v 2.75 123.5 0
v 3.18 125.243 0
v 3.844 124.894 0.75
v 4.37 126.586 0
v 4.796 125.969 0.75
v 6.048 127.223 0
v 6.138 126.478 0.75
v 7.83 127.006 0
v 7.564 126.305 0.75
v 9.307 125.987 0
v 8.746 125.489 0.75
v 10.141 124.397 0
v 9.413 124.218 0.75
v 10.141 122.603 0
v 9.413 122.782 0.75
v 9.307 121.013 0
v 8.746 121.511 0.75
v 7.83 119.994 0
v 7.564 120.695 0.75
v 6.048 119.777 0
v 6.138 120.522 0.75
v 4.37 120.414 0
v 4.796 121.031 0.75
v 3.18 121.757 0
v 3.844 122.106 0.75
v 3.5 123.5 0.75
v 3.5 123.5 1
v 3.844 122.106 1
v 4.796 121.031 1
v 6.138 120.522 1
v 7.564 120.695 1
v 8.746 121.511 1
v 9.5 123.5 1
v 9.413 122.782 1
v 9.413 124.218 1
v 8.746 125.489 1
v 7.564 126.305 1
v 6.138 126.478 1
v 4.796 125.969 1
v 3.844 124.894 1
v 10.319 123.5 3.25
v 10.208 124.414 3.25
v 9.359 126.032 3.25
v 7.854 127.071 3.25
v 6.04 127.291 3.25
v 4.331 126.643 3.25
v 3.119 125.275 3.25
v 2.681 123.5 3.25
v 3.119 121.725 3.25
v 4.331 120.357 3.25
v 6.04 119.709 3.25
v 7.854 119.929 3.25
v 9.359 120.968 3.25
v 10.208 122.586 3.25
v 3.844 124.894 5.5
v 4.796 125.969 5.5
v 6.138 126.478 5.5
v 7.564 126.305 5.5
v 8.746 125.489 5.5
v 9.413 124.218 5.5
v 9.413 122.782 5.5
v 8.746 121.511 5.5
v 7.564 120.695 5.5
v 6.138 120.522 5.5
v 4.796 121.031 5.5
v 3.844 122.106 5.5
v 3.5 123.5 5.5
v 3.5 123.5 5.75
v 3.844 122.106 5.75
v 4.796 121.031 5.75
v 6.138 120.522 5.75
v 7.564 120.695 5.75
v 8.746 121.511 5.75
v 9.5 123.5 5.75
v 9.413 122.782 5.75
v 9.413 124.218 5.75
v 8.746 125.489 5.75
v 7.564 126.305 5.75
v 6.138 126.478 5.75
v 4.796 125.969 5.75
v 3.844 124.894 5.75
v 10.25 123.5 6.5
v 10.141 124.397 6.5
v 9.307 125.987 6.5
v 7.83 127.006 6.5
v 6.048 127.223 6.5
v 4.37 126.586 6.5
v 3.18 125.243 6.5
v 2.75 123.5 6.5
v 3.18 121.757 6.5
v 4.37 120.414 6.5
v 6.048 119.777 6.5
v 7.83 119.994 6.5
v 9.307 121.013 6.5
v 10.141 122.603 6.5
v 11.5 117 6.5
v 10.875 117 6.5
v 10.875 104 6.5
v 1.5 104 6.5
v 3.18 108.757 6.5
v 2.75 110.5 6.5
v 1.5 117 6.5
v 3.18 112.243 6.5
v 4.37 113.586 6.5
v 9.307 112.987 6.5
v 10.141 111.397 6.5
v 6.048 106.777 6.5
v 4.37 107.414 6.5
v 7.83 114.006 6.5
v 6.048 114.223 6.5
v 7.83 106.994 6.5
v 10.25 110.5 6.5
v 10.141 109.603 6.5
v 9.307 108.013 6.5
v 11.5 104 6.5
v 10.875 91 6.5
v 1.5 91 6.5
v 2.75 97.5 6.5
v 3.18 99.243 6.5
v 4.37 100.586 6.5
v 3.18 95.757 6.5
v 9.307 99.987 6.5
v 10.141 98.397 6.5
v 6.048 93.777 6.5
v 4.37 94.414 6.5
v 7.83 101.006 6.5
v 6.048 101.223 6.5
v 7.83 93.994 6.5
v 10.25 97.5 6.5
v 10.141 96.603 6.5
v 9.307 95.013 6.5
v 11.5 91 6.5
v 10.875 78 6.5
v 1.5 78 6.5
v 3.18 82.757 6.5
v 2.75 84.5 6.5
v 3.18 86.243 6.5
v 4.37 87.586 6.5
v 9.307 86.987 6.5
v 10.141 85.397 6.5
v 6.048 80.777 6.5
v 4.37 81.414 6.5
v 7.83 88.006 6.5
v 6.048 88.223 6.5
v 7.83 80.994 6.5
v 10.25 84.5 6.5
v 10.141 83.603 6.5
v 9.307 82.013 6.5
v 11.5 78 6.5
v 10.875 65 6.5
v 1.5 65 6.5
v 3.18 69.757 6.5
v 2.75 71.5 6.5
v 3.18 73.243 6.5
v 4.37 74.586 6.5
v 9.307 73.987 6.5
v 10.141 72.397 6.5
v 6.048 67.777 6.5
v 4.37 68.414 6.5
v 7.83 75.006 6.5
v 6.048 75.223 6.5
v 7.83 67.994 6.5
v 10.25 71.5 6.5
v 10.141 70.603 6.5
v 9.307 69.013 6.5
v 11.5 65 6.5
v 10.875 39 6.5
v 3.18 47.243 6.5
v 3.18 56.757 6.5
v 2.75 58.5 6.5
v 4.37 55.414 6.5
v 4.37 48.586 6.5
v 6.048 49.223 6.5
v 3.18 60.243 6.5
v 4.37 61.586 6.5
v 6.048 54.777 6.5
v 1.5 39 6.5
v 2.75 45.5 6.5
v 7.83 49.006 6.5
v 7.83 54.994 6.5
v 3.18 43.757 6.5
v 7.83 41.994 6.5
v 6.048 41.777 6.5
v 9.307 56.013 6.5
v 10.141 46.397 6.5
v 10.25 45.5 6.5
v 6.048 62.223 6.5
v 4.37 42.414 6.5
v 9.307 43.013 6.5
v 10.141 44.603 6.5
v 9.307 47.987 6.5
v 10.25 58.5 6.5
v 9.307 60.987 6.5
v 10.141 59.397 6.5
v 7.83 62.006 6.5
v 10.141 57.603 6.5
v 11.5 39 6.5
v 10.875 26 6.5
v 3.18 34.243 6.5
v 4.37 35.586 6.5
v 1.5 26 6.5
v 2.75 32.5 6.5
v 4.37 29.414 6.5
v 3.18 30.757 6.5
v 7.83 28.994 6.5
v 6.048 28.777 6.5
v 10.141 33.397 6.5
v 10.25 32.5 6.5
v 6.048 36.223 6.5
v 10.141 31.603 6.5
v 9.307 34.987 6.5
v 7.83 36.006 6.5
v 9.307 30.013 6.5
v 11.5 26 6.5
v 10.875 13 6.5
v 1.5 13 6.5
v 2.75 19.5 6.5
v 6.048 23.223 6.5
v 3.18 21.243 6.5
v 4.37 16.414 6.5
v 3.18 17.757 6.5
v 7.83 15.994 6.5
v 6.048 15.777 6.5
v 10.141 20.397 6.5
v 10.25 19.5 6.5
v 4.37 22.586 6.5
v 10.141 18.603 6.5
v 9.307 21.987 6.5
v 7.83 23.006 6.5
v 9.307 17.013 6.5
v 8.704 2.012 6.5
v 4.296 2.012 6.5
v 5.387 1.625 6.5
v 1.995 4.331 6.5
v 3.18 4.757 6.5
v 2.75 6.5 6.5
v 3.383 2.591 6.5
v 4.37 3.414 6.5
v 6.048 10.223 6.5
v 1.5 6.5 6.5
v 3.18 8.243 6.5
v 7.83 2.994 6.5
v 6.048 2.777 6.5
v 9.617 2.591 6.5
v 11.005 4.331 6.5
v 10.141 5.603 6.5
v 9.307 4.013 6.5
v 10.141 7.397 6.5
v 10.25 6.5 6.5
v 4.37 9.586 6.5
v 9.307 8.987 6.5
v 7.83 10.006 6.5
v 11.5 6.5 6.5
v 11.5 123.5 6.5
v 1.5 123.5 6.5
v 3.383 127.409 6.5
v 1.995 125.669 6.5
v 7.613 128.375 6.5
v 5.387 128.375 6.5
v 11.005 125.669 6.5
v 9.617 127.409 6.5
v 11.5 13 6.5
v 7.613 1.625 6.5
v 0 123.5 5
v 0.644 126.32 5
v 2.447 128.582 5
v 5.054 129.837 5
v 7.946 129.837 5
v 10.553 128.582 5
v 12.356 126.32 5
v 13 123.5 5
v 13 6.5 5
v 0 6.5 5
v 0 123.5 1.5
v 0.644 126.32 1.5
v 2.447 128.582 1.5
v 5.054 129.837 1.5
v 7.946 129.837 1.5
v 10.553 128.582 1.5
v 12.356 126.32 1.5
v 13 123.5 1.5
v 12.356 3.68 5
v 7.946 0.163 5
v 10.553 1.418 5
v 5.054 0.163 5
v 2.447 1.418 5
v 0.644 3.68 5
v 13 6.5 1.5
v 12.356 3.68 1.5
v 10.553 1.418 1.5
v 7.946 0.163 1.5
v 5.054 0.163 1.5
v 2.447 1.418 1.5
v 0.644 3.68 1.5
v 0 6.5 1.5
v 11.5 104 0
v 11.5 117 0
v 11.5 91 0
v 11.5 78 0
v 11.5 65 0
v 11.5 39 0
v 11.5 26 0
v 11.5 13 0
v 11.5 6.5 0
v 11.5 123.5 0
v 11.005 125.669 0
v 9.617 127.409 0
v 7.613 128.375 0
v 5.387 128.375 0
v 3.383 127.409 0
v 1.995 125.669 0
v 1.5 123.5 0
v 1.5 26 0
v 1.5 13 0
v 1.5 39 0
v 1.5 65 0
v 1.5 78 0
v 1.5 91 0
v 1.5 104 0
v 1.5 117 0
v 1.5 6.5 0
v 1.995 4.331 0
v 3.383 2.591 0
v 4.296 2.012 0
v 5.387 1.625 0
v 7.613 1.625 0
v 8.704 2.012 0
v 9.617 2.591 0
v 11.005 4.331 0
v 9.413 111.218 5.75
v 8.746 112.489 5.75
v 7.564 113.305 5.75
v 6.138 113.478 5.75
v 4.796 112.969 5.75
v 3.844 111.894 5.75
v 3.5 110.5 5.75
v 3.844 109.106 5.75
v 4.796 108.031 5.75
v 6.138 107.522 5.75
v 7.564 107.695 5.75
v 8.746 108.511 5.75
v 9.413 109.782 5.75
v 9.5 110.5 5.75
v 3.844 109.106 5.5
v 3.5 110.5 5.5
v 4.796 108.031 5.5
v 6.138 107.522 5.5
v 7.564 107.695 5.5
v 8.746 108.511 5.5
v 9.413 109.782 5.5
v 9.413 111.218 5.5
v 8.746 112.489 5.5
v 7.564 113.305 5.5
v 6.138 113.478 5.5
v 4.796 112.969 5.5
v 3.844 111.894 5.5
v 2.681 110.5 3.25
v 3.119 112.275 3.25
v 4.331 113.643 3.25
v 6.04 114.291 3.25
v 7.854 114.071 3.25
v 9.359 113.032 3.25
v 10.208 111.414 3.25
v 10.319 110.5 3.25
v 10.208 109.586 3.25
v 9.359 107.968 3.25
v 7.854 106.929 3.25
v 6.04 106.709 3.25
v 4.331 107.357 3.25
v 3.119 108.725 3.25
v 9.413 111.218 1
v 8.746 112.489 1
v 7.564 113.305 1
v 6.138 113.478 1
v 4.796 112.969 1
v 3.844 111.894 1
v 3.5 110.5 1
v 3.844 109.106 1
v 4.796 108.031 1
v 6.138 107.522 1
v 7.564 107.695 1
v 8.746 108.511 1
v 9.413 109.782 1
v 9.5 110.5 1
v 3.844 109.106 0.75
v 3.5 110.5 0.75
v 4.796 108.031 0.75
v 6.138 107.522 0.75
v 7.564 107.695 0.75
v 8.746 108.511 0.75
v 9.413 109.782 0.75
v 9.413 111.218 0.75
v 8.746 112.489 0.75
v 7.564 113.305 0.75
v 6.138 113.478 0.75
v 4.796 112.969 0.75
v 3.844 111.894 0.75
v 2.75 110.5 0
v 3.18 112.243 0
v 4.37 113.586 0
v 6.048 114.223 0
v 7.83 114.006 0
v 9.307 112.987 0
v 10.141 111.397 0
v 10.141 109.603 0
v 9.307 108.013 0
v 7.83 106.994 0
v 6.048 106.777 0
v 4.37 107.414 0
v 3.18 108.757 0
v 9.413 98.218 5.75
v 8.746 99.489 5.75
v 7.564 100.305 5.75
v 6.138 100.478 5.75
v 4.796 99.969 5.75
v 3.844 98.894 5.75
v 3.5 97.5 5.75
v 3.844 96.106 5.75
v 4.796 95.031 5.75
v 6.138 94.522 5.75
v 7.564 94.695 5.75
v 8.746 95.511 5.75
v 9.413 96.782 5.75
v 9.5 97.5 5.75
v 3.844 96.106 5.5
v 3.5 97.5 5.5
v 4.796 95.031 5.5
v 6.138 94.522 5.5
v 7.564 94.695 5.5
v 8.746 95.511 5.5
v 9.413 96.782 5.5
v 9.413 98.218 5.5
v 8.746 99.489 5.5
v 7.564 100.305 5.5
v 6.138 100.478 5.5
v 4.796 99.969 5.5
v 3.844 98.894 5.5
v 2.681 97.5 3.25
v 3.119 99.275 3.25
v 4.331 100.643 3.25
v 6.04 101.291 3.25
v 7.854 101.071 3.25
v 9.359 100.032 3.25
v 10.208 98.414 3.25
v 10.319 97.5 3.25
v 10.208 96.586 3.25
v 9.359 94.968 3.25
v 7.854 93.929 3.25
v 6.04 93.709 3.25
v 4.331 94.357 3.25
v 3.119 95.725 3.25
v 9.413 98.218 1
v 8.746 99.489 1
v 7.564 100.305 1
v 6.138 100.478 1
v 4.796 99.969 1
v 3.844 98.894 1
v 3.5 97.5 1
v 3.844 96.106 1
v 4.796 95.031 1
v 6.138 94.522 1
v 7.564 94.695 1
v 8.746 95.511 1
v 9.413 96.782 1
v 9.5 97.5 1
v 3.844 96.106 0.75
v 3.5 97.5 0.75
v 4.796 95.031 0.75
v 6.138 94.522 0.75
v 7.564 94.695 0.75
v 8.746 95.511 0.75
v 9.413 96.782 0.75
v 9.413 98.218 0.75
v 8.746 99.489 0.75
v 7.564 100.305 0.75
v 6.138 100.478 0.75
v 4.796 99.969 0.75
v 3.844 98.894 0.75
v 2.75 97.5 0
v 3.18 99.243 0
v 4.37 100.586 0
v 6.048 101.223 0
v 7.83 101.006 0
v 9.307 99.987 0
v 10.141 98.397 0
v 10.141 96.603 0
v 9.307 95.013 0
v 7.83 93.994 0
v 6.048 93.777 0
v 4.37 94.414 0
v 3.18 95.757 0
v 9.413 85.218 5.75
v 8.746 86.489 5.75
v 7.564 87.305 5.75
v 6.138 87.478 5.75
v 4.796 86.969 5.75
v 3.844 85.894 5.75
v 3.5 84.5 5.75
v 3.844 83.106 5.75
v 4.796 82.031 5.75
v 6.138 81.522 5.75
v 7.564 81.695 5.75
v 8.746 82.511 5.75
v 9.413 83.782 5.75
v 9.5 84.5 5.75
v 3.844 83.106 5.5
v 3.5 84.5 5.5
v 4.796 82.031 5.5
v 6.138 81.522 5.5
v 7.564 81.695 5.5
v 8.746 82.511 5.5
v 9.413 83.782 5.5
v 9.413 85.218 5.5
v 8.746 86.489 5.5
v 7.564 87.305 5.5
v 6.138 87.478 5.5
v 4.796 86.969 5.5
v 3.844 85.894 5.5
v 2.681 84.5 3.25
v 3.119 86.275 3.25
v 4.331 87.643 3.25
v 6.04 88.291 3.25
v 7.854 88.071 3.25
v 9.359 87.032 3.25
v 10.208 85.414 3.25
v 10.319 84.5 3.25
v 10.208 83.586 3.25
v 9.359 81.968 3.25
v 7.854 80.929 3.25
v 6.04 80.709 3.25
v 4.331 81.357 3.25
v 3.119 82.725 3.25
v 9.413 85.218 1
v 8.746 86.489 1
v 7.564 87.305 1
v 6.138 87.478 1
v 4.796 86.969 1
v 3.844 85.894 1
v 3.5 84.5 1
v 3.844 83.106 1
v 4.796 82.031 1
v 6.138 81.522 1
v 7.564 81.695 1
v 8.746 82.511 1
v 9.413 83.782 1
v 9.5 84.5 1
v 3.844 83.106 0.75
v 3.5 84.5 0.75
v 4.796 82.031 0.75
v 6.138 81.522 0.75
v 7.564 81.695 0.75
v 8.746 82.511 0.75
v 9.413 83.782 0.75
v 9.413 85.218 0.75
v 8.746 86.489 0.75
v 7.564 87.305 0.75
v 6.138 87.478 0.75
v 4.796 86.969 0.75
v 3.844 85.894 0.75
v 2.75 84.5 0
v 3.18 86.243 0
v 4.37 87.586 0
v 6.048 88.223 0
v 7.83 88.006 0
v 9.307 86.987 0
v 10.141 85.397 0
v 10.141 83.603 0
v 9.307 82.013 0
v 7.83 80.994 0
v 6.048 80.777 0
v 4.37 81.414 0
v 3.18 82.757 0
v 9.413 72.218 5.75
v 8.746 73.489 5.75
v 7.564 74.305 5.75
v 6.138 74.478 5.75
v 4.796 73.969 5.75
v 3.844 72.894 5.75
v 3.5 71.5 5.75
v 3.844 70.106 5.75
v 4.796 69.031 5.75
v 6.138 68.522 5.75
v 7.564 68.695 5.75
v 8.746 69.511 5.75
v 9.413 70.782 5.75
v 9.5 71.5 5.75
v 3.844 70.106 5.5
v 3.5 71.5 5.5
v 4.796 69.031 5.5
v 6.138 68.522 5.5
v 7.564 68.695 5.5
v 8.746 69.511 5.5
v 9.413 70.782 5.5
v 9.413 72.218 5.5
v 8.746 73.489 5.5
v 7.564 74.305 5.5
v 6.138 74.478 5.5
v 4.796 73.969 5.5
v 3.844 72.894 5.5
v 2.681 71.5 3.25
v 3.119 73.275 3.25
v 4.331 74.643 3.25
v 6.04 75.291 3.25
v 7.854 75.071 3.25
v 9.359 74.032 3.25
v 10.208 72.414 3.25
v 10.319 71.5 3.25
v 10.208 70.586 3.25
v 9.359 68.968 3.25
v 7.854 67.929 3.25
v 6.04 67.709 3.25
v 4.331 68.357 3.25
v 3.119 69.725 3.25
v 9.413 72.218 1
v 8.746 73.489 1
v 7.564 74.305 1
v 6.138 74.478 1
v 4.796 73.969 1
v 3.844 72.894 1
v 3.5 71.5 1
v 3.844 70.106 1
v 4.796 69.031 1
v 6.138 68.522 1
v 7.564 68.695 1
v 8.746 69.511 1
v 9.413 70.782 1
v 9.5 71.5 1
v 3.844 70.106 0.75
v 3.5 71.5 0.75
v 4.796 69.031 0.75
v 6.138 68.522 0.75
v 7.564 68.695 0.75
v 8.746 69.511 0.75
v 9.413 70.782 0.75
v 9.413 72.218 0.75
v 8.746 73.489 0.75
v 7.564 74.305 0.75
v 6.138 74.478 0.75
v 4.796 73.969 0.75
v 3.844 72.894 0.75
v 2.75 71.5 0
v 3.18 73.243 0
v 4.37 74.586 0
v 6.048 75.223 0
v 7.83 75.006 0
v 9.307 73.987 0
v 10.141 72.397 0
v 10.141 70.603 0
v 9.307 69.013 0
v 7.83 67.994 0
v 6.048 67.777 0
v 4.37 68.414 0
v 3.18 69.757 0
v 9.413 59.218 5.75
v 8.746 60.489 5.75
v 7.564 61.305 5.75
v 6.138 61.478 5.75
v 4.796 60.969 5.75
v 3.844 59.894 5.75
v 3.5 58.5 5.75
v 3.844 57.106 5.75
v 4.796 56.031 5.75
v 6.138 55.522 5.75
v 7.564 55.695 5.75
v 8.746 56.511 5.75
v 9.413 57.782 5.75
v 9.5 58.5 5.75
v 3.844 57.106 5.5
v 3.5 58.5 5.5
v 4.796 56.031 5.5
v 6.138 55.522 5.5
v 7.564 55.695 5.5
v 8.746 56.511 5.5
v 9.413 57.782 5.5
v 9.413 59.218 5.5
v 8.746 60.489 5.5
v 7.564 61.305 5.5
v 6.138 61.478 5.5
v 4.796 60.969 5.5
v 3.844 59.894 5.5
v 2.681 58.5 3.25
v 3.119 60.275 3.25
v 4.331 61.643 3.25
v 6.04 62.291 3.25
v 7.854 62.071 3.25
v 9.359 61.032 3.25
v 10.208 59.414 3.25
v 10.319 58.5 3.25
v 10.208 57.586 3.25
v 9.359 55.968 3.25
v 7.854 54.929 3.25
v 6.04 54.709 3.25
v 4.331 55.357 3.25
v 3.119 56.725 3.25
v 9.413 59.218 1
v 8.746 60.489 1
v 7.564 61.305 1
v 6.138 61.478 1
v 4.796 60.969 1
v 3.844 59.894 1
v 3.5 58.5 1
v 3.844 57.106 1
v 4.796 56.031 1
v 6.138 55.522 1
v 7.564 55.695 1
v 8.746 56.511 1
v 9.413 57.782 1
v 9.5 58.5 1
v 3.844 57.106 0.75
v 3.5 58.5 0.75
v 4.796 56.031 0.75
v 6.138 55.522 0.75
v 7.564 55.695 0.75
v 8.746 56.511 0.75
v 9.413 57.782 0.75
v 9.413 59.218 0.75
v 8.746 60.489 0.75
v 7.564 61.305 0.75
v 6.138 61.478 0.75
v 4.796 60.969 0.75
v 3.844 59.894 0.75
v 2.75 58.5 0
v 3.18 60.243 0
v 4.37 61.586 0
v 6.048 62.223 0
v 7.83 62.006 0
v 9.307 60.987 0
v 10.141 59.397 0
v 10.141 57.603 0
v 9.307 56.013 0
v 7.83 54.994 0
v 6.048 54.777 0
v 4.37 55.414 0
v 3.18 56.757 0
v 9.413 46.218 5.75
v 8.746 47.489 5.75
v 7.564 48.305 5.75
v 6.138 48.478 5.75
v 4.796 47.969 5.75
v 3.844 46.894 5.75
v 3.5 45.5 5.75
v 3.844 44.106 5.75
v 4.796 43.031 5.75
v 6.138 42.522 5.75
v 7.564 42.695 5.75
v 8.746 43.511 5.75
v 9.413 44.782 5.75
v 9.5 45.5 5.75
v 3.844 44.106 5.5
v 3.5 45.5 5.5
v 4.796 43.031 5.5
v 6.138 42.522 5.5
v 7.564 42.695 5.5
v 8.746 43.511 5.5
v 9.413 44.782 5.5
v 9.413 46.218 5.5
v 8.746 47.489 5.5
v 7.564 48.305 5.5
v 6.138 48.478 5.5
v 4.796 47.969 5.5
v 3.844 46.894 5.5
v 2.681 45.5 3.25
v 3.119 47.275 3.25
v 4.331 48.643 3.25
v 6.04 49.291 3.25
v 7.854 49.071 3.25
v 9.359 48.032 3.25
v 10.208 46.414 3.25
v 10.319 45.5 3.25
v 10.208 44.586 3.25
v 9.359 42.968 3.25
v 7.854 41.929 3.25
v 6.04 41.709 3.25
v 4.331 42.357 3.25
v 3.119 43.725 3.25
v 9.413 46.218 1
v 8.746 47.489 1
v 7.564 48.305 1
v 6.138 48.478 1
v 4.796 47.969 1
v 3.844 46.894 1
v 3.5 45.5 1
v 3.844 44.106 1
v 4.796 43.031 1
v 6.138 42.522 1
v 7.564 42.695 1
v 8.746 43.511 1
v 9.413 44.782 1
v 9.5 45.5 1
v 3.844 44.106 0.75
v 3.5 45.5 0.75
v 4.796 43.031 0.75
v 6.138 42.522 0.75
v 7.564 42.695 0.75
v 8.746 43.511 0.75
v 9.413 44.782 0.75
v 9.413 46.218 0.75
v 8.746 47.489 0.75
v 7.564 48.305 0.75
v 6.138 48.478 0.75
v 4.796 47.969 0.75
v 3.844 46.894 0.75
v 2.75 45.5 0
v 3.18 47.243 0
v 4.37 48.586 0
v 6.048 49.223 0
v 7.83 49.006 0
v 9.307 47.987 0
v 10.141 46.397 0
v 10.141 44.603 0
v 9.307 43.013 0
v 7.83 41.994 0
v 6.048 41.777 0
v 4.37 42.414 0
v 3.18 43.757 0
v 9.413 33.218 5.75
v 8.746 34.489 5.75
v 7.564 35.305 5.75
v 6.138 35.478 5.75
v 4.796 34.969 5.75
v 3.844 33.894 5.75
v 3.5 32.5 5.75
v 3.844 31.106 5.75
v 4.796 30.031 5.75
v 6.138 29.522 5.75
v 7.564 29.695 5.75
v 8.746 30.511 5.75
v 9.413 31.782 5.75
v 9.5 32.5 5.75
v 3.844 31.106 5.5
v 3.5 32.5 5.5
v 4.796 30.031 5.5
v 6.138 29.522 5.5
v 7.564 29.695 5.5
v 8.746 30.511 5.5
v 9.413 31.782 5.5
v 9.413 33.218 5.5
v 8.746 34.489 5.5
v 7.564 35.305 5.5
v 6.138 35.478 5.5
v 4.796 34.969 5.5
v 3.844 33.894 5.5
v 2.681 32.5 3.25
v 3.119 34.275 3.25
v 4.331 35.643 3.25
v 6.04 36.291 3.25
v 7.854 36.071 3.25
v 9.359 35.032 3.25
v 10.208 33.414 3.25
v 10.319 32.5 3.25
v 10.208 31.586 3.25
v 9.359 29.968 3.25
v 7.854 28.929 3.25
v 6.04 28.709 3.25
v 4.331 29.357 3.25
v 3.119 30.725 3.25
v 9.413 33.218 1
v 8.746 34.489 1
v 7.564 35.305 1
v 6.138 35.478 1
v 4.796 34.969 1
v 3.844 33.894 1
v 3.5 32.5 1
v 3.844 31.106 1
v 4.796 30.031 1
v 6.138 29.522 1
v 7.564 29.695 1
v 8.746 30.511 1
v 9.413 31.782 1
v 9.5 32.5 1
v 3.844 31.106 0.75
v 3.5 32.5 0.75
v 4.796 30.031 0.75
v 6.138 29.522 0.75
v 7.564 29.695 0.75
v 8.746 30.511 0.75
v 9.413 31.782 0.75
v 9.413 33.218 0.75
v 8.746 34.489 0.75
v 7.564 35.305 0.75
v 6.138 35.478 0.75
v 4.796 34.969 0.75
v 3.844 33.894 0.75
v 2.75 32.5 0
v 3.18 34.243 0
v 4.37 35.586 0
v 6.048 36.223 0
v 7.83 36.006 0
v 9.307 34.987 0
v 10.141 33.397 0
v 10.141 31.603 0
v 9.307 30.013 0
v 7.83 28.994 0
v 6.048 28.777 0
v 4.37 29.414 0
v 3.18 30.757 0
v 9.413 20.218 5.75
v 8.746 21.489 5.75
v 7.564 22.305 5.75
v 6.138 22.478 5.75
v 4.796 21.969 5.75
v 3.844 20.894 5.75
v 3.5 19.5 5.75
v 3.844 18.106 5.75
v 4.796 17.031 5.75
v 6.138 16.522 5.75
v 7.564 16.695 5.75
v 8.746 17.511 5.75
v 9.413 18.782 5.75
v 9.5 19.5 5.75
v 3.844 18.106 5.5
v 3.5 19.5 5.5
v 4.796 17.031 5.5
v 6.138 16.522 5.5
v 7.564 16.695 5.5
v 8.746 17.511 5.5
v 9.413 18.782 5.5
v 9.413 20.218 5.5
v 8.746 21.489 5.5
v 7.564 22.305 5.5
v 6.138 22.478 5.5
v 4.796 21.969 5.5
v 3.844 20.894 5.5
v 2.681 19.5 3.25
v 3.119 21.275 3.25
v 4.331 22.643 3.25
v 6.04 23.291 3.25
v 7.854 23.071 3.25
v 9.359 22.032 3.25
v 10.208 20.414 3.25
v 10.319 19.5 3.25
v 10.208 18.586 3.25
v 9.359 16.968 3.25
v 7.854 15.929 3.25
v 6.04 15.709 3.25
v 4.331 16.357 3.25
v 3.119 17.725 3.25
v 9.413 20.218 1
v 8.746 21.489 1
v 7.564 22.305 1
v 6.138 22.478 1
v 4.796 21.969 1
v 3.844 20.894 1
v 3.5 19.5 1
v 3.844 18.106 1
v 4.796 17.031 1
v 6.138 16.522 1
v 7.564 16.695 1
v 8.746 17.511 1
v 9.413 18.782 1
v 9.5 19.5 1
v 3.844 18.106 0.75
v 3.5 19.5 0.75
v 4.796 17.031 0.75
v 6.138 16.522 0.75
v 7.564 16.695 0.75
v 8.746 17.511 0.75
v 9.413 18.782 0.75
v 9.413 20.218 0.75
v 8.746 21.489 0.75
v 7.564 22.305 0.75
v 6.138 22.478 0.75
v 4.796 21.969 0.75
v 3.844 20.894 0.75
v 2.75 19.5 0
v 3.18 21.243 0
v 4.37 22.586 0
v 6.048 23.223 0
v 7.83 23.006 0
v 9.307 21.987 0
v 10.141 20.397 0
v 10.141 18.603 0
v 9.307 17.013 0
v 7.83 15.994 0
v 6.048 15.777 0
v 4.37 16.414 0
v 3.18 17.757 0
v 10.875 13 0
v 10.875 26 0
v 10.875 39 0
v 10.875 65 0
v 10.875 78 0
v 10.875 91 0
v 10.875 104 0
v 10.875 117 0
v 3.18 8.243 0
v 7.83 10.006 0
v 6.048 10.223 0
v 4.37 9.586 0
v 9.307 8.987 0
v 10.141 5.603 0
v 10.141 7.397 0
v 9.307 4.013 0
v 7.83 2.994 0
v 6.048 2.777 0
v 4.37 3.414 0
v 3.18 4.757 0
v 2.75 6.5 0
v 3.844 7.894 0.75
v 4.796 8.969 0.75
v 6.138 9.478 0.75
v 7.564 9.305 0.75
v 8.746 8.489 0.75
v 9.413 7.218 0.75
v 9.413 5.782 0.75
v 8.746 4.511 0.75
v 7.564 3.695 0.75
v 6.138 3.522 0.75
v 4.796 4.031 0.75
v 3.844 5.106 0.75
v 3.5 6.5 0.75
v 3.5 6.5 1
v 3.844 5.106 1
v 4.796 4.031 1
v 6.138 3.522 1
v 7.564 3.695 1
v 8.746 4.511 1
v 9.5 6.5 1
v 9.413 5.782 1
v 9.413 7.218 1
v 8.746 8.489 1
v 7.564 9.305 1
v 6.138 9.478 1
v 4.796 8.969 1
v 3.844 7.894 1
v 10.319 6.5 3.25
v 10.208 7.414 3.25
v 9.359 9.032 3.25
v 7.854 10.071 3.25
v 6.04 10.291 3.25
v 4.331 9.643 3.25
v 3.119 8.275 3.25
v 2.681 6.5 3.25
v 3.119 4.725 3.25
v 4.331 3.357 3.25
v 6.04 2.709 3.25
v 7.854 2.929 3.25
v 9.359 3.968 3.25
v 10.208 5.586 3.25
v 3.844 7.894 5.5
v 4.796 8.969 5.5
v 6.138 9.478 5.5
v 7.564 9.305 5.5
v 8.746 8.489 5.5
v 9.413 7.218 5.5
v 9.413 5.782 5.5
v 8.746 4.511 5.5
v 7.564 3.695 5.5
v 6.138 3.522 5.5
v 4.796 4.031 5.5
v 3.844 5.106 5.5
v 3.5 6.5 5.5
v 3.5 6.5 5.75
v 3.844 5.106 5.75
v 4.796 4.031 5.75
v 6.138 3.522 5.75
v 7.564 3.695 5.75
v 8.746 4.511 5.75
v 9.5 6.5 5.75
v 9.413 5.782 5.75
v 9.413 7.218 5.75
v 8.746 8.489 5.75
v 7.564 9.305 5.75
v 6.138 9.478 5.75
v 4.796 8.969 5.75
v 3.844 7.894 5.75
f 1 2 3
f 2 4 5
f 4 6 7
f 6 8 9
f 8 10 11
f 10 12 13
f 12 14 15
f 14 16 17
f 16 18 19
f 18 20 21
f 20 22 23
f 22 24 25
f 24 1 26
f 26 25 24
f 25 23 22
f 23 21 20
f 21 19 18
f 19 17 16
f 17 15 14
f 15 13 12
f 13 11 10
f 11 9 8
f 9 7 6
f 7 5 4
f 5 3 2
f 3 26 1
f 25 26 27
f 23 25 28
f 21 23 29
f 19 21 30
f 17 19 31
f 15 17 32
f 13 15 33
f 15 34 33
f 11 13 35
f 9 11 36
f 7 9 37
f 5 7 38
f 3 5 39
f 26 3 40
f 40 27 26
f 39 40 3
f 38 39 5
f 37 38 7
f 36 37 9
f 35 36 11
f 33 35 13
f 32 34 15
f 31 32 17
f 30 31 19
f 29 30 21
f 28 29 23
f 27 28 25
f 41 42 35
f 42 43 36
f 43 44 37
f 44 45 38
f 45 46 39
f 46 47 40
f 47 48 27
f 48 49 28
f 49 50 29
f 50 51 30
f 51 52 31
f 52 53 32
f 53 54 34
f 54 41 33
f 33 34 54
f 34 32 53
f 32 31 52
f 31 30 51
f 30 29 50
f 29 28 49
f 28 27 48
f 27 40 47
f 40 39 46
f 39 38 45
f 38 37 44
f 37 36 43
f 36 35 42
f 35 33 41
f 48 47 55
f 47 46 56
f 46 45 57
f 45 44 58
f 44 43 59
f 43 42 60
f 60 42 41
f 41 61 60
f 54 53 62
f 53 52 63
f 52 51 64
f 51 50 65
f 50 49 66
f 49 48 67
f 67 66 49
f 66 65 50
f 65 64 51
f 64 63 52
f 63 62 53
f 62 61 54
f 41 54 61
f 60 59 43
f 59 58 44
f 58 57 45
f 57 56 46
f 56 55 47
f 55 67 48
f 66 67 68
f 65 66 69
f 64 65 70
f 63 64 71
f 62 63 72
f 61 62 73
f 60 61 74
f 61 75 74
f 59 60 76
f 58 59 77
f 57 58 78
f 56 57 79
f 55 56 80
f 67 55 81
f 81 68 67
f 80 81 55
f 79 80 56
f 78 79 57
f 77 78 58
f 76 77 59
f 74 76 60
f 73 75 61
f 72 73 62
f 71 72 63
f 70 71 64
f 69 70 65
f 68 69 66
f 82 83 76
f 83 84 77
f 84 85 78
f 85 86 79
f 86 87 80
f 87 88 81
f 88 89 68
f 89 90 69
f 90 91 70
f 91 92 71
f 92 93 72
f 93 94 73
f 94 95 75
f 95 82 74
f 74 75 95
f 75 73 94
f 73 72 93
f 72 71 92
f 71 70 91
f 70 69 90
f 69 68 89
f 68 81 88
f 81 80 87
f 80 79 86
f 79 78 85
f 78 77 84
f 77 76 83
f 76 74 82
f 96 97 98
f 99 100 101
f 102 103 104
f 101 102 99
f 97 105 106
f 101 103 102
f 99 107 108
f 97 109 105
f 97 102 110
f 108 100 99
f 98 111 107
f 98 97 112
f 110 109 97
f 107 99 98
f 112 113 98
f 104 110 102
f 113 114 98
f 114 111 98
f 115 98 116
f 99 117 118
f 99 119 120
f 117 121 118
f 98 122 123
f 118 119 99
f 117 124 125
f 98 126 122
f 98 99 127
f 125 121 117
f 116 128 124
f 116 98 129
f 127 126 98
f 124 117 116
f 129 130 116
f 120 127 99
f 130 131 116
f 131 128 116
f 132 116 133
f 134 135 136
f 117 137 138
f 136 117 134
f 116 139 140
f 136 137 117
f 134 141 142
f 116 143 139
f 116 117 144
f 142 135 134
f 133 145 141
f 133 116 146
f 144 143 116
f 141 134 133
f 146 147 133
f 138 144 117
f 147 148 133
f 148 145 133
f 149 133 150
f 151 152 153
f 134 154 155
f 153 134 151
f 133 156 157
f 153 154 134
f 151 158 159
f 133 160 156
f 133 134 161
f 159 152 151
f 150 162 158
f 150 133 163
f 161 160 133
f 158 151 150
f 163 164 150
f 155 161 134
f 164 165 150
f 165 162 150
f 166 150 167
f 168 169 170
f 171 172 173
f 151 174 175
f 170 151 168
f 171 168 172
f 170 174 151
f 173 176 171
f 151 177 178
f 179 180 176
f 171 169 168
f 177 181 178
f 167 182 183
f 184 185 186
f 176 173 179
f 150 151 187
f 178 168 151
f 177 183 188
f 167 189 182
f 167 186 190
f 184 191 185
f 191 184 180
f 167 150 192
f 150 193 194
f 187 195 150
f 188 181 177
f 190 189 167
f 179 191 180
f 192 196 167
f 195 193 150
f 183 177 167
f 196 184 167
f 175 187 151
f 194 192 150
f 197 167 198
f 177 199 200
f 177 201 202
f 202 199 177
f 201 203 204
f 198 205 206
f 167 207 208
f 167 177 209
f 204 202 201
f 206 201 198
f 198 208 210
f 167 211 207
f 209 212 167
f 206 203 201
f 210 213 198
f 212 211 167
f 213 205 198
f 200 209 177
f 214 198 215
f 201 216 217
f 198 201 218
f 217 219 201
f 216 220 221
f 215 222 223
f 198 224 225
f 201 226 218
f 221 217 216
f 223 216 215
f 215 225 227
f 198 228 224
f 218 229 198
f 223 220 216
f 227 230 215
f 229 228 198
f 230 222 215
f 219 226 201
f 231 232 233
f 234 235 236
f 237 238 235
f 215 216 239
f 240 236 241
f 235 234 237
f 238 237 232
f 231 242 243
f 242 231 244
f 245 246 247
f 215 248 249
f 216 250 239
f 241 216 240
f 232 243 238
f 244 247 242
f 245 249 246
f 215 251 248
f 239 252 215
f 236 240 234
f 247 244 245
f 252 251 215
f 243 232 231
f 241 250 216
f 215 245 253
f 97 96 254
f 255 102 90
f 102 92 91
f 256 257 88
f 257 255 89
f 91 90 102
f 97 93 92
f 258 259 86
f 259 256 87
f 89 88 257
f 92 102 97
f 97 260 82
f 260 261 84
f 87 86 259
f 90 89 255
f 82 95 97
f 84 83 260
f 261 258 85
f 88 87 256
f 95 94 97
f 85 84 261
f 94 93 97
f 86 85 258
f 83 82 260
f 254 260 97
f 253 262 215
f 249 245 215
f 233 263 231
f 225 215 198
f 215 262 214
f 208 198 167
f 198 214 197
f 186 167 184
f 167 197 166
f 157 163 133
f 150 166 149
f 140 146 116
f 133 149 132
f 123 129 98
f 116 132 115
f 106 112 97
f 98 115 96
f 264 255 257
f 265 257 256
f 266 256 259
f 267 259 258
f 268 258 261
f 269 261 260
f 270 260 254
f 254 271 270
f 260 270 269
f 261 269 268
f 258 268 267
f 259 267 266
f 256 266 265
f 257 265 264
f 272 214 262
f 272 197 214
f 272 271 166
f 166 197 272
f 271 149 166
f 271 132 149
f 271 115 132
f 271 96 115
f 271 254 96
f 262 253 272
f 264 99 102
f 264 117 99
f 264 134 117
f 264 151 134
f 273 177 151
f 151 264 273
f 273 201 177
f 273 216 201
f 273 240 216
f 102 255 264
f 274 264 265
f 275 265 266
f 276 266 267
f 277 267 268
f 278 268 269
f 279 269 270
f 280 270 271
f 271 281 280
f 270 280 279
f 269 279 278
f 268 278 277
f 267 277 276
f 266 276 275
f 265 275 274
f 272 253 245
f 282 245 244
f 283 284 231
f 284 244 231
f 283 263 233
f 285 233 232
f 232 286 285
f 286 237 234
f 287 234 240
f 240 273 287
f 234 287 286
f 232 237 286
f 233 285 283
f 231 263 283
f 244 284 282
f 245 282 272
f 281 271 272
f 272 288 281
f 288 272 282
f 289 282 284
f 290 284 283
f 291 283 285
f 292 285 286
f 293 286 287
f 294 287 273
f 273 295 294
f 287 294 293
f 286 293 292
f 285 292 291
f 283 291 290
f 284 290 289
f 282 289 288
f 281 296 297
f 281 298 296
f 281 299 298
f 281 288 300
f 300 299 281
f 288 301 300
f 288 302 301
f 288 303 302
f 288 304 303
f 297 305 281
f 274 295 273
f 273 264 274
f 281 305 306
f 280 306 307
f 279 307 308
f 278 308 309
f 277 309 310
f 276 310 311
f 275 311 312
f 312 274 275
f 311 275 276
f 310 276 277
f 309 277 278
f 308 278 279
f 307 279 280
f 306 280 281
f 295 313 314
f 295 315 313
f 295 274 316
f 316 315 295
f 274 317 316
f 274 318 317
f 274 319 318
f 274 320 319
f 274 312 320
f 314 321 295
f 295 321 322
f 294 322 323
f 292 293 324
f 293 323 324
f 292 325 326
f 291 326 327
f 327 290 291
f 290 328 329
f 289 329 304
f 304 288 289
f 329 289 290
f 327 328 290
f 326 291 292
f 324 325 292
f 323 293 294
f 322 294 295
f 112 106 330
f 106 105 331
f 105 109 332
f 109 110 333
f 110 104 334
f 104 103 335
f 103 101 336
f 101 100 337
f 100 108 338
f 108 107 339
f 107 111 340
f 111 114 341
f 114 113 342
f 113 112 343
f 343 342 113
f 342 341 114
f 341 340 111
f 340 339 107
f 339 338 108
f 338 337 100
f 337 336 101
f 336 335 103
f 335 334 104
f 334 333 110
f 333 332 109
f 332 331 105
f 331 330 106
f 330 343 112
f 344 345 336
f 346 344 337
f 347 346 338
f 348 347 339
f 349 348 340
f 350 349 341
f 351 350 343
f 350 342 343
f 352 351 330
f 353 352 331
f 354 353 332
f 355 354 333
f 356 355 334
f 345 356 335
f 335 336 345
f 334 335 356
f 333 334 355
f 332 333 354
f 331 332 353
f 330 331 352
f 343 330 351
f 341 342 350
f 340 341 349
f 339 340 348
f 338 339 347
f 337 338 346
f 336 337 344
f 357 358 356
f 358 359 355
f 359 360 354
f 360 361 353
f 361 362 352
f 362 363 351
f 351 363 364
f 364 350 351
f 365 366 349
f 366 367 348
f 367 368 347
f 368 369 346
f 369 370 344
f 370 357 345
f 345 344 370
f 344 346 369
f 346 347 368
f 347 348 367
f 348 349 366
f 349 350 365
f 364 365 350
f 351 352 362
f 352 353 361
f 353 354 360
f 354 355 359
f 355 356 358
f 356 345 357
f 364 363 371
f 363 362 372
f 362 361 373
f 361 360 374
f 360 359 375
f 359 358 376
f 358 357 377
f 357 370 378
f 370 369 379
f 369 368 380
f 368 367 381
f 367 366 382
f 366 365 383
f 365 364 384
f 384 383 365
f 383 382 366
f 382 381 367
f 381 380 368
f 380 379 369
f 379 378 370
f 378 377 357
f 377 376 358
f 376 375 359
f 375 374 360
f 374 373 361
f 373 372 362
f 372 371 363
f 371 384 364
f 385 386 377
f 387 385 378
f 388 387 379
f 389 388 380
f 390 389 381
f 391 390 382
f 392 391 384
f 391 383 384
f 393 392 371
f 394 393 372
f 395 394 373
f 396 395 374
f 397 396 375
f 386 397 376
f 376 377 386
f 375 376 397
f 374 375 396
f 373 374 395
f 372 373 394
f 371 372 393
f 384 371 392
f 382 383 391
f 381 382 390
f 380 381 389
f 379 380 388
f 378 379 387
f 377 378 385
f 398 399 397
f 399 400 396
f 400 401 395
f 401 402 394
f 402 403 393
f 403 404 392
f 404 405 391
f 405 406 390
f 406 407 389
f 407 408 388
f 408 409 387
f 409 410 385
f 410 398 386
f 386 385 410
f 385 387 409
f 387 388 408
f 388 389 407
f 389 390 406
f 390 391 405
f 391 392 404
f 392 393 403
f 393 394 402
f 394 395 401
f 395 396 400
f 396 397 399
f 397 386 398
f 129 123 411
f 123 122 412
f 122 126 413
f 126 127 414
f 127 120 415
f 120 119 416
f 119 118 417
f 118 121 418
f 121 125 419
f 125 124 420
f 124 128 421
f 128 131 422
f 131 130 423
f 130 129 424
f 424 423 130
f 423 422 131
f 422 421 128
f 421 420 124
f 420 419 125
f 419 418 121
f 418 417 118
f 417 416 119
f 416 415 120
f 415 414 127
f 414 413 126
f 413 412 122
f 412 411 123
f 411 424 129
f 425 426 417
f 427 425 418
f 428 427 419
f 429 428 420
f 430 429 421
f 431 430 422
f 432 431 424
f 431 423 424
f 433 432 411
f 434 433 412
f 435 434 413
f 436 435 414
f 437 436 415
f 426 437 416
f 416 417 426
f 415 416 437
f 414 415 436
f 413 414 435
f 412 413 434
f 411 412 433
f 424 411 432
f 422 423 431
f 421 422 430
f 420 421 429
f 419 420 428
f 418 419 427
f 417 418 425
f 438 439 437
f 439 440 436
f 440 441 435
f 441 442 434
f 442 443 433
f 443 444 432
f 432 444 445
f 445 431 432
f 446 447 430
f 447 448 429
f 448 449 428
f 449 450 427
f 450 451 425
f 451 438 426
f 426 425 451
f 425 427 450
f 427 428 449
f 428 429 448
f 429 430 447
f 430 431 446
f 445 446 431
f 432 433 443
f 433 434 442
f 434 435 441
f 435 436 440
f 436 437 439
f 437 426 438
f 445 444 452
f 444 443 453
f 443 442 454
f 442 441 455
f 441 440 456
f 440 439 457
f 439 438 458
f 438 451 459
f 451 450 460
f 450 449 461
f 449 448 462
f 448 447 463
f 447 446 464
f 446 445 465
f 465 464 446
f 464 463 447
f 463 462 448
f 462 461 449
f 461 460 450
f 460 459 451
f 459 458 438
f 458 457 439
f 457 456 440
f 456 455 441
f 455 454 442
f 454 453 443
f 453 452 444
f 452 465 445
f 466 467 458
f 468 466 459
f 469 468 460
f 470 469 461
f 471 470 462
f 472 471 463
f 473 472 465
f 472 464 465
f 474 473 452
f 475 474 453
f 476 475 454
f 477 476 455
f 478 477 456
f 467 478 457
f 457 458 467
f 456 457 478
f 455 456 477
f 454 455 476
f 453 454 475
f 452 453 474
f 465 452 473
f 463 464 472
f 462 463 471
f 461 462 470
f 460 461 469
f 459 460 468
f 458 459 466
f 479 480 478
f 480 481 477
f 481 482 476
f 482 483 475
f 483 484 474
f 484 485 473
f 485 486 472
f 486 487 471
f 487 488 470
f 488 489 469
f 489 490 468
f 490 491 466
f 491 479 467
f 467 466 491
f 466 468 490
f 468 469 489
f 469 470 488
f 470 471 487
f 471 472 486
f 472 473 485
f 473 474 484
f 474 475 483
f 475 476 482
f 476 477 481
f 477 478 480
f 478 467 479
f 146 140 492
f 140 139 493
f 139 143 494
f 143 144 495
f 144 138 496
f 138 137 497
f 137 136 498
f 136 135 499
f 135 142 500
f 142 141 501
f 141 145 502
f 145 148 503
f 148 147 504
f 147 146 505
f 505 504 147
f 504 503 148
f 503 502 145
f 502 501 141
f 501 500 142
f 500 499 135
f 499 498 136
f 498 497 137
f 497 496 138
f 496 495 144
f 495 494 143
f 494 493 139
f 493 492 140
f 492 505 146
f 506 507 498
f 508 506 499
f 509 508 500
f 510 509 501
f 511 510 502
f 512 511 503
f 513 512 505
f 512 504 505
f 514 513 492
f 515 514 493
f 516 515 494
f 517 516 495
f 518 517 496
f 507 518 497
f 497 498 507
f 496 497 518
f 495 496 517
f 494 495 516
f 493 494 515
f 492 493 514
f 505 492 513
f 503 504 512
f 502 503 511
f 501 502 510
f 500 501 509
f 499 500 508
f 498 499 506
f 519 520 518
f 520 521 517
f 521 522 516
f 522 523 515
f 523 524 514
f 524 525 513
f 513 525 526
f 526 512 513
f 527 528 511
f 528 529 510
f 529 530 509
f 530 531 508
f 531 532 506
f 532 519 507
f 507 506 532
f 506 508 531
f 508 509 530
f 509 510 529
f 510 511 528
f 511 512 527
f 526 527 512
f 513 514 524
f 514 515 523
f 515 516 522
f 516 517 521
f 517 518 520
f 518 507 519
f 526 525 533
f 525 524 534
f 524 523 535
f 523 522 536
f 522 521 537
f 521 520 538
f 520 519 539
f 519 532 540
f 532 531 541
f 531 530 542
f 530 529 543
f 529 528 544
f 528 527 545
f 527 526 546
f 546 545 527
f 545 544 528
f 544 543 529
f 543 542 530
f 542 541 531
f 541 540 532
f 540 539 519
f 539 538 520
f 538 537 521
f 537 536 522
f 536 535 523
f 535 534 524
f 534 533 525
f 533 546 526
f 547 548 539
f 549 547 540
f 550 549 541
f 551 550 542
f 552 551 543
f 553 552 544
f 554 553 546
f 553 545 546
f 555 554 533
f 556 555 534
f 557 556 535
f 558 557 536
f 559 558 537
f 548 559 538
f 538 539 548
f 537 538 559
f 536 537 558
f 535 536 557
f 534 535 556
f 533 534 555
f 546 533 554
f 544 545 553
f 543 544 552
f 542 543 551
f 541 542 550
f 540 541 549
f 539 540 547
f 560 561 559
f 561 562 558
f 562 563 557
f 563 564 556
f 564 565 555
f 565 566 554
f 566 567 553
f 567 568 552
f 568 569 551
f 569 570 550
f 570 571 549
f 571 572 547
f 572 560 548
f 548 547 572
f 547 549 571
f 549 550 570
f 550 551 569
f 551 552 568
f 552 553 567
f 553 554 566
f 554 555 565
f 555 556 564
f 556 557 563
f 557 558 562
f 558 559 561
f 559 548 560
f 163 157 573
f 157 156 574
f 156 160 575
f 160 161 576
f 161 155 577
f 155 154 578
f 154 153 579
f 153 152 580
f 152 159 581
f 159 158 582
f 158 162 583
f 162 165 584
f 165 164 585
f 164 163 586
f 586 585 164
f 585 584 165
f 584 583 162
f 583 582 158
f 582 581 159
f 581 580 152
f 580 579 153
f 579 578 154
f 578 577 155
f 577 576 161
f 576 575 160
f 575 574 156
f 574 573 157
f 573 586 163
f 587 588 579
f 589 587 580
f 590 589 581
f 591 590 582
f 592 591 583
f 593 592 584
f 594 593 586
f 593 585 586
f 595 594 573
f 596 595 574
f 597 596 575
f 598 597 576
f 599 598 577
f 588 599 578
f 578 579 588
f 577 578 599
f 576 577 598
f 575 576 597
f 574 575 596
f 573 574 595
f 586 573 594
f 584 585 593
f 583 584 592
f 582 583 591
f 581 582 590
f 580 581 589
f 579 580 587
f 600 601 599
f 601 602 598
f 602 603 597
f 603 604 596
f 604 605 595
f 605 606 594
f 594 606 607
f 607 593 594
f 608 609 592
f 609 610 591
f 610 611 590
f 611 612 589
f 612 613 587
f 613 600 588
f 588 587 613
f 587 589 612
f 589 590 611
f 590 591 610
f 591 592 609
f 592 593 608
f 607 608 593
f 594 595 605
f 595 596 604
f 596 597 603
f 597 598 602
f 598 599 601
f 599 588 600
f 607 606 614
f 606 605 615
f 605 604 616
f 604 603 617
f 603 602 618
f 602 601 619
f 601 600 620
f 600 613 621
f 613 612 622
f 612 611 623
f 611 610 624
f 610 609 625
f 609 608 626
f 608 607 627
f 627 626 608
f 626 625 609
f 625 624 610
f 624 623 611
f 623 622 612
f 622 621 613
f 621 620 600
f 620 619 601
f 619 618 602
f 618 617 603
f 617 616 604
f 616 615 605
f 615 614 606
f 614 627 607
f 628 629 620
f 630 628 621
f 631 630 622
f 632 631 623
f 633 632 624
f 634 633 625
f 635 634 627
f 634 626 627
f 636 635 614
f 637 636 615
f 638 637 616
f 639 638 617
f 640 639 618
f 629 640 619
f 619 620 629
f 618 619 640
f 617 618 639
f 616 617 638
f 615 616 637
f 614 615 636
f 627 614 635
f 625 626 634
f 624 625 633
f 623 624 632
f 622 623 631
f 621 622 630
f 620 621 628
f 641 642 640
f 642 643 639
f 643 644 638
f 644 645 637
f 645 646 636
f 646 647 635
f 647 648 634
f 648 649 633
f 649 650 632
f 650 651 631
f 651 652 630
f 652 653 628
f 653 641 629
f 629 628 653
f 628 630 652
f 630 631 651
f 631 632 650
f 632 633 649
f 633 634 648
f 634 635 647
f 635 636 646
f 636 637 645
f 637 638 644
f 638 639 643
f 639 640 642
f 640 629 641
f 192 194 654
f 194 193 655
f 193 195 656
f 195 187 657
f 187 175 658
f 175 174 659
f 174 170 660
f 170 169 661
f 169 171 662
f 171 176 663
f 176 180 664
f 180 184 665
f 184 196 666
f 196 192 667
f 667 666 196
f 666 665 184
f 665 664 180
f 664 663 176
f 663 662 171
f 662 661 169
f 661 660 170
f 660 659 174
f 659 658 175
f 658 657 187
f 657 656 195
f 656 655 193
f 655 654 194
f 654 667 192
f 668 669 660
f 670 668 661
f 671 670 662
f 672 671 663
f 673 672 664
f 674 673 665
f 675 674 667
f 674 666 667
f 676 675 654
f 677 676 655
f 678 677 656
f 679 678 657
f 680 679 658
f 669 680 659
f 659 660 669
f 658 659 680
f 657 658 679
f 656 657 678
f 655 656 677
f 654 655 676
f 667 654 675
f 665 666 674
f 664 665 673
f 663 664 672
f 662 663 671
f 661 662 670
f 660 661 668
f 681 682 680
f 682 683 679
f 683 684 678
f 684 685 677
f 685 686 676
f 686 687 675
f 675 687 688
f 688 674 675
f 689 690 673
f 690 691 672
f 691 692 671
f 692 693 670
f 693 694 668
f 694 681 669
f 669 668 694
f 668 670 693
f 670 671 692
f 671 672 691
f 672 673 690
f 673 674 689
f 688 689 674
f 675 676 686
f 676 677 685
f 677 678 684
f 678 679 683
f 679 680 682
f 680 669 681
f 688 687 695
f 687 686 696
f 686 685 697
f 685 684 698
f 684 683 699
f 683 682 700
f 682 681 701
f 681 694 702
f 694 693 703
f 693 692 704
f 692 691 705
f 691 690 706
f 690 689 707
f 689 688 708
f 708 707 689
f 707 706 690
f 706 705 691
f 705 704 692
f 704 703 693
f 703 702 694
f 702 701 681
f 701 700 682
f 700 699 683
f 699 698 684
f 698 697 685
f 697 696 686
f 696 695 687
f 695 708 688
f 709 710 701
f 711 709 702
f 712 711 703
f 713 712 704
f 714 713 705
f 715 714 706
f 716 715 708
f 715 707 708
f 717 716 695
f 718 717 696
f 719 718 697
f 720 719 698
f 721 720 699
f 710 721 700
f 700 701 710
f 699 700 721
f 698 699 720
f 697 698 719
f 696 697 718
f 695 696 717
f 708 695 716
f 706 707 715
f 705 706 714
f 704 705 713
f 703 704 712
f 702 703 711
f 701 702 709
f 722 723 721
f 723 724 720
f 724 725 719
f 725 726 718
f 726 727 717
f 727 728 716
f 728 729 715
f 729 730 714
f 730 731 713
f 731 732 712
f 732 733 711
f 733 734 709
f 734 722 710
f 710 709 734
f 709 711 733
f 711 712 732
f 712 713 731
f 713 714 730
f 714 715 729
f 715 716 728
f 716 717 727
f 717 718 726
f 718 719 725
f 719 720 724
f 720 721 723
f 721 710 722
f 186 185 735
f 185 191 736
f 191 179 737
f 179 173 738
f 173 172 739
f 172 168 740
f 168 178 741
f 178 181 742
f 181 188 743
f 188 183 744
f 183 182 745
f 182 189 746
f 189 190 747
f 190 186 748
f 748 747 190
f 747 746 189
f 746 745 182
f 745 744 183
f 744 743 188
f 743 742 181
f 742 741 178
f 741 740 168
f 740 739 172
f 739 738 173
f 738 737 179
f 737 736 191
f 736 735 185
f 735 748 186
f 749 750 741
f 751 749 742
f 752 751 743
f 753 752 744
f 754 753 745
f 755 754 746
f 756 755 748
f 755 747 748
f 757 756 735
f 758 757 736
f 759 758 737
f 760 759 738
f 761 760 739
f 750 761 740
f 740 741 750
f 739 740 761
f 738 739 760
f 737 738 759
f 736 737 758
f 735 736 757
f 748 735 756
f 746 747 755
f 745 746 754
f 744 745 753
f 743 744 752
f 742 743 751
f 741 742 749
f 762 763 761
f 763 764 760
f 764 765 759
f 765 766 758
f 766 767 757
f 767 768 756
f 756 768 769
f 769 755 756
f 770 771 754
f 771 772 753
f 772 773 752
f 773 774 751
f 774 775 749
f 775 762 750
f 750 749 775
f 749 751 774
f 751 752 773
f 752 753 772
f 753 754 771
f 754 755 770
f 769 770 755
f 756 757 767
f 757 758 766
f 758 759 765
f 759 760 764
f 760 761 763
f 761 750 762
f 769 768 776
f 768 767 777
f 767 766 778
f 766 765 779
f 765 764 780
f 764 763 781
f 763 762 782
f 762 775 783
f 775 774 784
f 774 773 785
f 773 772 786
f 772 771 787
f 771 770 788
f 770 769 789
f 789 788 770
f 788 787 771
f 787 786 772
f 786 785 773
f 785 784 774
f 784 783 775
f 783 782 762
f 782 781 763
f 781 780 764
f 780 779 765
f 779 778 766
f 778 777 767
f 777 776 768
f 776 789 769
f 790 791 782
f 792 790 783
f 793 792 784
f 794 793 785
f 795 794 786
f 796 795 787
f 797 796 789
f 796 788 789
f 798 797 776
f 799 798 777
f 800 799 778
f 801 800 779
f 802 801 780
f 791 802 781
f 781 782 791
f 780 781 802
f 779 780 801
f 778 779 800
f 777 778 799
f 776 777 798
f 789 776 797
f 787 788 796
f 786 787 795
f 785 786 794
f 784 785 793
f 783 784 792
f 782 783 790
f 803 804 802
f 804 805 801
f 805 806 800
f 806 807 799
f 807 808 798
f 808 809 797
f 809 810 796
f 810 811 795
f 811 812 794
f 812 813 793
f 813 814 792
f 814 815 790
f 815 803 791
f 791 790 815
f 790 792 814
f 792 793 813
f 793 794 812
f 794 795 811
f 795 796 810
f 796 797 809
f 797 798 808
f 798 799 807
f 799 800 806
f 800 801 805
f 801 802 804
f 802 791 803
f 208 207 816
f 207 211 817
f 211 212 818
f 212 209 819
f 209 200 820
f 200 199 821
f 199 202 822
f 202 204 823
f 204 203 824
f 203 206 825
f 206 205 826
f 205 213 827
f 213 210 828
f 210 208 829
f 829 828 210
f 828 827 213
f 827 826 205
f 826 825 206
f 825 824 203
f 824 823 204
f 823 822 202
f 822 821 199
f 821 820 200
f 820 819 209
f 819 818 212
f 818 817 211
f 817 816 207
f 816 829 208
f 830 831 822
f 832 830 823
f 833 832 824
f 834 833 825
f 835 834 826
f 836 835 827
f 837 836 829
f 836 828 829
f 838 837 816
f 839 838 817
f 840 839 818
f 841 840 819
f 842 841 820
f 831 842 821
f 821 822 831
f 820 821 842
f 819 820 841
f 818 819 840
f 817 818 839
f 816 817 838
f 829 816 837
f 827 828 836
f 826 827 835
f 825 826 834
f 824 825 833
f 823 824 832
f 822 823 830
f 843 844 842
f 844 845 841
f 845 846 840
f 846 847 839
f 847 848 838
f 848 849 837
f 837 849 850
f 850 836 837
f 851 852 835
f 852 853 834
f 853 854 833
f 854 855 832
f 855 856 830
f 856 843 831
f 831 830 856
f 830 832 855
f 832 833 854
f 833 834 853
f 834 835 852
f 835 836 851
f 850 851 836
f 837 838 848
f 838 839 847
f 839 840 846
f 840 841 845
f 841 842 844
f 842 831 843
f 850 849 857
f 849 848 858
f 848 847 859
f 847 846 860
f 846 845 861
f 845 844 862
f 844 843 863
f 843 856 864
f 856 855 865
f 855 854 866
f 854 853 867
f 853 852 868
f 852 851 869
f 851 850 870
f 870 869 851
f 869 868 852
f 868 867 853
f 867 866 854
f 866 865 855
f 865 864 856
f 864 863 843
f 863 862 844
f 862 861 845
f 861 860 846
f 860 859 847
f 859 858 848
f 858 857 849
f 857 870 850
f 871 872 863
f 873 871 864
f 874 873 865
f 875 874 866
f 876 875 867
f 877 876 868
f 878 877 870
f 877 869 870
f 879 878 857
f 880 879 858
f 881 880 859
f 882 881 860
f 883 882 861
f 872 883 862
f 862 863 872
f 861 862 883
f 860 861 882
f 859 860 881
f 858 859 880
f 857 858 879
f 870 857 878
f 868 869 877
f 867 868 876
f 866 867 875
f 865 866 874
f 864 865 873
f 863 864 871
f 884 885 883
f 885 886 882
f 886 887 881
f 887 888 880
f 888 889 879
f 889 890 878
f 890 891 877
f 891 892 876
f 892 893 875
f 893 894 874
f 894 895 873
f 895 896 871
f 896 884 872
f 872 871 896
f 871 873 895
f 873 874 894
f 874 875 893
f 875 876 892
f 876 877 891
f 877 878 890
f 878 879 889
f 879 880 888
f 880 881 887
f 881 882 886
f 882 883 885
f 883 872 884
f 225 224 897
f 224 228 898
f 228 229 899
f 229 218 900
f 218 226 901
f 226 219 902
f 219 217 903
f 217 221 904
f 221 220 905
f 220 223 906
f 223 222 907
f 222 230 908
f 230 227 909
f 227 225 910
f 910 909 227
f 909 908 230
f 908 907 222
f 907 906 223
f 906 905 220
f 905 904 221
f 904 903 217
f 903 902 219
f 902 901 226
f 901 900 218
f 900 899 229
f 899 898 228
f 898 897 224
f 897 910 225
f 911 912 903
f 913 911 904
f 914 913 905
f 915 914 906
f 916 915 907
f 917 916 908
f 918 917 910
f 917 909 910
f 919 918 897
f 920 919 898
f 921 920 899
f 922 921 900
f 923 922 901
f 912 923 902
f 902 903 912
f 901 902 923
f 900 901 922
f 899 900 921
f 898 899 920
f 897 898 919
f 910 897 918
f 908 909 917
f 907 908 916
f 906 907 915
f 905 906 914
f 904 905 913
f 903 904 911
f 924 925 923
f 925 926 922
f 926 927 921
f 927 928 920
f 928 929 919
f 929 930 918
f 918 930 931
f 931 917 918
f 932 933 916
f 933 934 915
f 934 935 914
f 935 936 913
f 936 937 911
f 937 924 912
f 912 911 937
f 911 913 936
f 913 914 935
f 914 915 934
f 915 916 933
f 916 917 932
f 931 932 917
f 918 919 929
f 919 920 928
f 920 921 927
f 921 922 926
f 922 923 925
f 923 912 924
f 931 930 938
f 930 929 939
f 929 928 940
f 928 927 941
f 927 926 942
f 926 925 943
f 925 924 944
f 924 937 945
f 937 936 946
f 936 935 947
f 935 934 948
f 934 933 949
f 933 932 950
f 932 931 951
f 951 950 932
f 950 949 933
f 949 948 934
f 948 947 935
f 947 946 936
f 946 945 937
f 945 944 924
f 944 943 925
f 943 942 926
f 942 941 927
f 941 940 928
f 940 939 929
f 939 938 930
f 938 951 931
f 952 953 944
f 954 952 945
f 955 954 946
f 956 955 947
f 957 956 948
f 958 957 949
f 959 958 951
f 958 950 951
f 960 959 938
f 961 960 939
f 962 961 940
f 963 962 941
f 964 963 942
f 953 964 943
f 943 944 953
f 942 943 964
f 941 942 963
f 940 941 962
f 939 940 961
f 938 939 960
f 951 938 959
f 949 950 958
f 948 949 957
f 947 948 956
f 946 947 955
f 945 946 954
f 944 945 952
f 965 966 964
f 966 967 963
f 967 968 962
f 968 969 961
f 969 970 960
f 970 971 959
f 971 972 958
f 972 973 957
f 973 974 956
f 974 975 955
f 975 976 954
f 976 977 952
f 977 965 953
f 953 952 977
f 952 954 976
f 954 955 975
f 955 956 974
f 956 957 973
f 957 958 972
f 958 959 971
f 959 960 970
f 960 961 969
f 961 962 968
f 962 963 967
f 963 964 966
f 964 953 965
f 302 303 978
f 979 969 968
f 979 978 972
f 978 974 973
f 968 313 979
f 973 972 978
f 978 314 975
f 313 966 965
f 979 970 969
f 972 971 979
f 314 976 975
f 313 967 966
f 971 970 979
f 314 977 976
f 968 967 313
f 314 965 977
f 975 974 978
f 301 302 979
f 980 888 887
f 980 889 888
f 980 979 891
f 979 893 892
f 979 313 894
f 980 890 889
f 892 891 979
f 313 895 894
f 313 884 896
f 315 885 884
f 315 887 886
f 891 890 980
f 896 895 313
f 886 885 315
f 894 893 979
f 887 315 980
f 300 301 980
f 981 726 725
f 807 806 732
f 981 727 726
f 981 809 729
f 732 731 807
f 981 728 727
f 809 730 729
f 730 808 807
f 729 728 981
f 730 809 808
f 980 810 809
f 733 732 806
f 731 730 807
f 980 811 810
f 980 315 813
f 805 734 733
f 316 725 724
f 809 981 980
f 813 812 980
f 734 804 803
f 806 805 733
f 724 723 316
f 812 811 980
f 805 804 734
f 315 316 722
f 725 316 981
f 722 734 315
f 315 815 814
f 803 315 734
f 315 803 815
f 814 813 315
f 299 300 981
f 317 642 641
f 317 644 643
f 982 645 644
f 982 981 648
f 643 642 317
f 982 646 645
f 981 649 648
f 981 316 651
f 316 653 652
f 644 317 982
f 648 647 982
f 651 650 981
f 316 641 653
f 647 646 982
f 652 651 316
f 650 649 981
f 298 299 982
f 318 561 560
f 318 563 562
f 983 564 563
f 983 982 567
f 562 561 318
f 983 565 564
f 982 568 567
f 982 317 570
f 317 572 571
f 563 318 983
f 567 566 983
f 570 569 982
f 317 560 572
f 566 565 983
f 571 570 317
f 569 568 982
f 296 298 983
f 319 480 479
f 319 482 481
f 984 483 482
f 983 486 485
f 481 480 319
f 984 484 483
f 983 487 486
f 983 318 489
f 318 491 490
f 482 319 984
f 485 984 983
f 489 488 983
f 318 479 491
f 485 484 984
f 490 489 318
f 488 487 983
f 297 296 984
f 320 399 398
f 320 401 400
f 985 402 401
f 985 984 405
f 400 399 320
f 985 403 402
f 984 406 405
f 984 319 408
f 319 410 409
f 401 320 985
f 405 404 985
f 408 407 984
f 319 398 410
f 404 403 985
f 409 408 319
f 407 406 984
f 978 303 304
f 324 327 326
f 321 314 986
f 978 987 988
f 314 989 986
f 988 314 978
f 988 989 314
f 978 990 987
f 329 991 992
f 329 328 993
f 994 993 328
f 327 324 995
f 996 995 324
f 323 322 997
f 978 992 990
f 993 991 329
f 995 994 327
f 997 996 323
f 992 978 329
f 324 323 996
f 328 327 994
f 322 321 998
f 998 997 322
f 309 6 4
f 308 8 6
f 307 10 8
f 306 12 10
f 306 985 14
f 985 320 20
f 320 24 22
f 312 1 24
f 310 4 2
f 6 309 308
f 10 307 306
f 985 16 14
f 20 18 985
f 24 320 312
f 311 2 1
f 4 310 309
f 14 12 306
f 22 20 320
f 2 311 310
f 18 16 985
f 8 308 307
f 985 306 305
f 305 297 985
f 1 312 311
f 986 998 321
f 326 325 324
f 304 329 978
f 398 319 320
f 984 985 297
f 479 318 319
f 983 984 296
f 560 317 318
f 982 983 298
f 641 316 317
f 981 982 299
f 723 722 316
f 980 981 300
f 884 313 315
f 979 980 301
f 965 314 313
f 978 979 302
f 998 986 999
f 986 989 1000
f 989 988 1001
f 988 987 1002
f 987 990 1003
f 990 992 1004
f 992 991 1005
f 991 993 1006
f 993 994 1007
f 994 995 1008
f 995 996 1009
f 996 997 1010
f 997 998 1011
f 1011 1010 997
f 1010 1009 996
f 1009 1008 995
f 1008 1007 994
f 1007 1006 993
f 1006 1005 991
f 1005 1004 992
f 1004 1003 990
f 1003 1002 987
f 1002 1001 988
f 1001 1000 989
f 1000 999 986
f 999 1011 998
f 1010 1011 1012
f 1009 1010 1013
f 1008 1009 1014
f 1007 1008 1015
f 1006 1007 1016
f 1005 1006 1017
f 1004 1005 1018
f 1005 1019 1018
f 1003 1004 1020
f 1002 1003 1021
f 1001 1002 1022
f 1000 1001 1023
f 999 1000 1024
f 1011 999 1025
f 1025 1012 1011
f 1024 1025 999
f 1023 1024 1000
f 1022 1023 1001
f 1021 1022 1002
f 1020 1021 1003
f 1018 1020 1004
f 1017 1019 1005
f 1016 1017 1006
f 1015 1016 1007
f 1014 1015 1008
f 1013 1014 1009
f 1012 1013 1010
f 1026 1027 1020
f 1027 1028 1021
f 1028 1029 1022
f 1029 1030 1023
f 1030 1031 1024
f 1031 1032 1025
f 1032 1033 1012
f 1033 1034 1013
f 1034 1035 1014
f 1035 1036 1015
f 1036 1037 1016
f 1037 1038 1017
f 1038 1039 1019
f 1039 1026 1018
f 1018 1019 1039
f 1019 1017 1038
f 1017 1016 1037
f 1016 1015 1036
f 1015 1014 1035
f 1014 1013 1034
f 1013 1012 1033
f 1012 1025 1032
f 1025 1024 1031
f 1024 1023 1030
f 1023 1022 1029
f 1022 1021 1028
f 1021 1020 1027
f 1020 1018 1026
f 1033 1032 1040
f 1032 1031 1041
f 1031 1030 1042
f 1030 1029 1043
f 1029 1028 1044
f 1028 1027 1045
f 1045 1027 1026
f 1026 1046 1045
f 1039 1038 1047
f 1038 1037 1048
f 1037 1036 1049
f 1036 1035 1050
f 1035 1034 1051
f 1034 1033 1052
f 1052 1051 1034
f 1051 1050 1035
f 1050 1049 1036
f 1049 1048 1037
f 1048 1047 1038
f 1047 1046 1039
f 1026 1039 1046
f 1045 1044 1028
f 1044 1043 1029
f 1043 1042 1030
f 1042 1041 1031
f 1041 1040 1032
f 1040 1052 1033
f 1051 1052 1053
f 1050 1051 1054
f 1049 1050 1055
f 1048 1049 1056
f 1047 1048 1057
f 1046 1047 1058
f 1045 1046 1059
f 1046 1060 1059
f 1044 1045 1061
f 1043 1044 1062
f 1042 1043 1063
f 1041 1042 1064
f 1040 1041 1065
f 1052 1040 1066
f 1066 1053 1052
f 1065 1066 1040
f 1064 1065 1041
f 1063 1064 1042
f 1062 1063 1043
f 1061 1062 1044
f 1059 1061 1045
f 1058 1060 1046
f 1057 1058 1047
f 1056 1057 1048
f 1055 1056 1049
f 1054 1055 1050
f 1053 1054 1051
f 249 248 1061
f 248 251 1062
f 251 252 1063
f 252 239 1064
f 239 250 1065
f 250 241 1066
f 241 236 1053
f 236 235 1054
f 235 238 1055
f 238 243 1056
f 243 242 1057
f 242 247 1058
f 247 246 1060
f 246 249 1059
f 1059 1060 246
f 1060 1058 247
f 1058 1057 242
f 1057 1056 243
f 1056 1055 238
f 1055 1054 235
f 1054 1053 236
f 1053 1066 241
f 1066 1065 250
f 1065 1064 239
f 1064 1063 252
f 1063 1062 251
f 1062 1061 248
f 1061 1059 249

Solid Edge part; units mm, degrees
sketch "Sketch1" plane through (0, 0, 0) normal (0, 0, 1) x (1, 0, 0)
  line L0 (0, 123.5) -> (0, 6.5)
  line L1 (13, 6.5) -> (13, 123.5)
  arc A0 (13, 6.5) -> (0, 6.5) centre (6.5, 6.5) cw
  arc A1 (0, 123.5) -> (13, 123.5) centre (6.5, 123.5) cw
extrude "Protrusion1" add sketch "Sketch1" along normal blind 6.5
sketch "Sketch2" plane through (6.5, 0, 0) normal (1, 0, 0) x (0, 1, 0)
  line L0 (3.5, 0) -> (3.5, 1)
  line L1 (3.5, 1) -> (2.6811, 3.25)
  line L2 (3.5, 5.5) -> (2.6811, 3.25)
  line L3 (3.5, 6.5) -> (3.5, 5.5)
  line L4 (6.5, 6.5) -> (3.5, 6.5)
  line L5 (6.5, 6.5) -> (6.5, 0)
  line L6 (3.5, 0) -> (6.5, 0)
  dimension "D1" = 3
  dimension "D2" = 1
  dimension "D3" = 2.3944
  dimension "D4" = 1.5731
  dimension "D5" = 6.5
revolve "RevolvedCutout1" cut sketch "Sketch2" angle 360 about axis through (6.5, 6.5, 6.5) along (0, 0, -1)
chamfer "Chaflán_2" distance 0.75 angle 45 2 edges at (9.5, 6.5, 6.5) (9.5, 6.5, 0)
pattern_linear "Pattern1" count 10 spacing 13 along (0, 1, 0) of "RevolvedCutout1", "Chaflán_2"
chamfer "Chaflán_37" distance 1.5 angle 45 8 edges at (0, 65, 0) (6.5, 130, 0) (13, 65, 0) (6.5, 0, 0) (0, 65, 6.5) (6.5, 130, 6.5) (13, 65, 6.5) (6.5, 0, 6.5)
